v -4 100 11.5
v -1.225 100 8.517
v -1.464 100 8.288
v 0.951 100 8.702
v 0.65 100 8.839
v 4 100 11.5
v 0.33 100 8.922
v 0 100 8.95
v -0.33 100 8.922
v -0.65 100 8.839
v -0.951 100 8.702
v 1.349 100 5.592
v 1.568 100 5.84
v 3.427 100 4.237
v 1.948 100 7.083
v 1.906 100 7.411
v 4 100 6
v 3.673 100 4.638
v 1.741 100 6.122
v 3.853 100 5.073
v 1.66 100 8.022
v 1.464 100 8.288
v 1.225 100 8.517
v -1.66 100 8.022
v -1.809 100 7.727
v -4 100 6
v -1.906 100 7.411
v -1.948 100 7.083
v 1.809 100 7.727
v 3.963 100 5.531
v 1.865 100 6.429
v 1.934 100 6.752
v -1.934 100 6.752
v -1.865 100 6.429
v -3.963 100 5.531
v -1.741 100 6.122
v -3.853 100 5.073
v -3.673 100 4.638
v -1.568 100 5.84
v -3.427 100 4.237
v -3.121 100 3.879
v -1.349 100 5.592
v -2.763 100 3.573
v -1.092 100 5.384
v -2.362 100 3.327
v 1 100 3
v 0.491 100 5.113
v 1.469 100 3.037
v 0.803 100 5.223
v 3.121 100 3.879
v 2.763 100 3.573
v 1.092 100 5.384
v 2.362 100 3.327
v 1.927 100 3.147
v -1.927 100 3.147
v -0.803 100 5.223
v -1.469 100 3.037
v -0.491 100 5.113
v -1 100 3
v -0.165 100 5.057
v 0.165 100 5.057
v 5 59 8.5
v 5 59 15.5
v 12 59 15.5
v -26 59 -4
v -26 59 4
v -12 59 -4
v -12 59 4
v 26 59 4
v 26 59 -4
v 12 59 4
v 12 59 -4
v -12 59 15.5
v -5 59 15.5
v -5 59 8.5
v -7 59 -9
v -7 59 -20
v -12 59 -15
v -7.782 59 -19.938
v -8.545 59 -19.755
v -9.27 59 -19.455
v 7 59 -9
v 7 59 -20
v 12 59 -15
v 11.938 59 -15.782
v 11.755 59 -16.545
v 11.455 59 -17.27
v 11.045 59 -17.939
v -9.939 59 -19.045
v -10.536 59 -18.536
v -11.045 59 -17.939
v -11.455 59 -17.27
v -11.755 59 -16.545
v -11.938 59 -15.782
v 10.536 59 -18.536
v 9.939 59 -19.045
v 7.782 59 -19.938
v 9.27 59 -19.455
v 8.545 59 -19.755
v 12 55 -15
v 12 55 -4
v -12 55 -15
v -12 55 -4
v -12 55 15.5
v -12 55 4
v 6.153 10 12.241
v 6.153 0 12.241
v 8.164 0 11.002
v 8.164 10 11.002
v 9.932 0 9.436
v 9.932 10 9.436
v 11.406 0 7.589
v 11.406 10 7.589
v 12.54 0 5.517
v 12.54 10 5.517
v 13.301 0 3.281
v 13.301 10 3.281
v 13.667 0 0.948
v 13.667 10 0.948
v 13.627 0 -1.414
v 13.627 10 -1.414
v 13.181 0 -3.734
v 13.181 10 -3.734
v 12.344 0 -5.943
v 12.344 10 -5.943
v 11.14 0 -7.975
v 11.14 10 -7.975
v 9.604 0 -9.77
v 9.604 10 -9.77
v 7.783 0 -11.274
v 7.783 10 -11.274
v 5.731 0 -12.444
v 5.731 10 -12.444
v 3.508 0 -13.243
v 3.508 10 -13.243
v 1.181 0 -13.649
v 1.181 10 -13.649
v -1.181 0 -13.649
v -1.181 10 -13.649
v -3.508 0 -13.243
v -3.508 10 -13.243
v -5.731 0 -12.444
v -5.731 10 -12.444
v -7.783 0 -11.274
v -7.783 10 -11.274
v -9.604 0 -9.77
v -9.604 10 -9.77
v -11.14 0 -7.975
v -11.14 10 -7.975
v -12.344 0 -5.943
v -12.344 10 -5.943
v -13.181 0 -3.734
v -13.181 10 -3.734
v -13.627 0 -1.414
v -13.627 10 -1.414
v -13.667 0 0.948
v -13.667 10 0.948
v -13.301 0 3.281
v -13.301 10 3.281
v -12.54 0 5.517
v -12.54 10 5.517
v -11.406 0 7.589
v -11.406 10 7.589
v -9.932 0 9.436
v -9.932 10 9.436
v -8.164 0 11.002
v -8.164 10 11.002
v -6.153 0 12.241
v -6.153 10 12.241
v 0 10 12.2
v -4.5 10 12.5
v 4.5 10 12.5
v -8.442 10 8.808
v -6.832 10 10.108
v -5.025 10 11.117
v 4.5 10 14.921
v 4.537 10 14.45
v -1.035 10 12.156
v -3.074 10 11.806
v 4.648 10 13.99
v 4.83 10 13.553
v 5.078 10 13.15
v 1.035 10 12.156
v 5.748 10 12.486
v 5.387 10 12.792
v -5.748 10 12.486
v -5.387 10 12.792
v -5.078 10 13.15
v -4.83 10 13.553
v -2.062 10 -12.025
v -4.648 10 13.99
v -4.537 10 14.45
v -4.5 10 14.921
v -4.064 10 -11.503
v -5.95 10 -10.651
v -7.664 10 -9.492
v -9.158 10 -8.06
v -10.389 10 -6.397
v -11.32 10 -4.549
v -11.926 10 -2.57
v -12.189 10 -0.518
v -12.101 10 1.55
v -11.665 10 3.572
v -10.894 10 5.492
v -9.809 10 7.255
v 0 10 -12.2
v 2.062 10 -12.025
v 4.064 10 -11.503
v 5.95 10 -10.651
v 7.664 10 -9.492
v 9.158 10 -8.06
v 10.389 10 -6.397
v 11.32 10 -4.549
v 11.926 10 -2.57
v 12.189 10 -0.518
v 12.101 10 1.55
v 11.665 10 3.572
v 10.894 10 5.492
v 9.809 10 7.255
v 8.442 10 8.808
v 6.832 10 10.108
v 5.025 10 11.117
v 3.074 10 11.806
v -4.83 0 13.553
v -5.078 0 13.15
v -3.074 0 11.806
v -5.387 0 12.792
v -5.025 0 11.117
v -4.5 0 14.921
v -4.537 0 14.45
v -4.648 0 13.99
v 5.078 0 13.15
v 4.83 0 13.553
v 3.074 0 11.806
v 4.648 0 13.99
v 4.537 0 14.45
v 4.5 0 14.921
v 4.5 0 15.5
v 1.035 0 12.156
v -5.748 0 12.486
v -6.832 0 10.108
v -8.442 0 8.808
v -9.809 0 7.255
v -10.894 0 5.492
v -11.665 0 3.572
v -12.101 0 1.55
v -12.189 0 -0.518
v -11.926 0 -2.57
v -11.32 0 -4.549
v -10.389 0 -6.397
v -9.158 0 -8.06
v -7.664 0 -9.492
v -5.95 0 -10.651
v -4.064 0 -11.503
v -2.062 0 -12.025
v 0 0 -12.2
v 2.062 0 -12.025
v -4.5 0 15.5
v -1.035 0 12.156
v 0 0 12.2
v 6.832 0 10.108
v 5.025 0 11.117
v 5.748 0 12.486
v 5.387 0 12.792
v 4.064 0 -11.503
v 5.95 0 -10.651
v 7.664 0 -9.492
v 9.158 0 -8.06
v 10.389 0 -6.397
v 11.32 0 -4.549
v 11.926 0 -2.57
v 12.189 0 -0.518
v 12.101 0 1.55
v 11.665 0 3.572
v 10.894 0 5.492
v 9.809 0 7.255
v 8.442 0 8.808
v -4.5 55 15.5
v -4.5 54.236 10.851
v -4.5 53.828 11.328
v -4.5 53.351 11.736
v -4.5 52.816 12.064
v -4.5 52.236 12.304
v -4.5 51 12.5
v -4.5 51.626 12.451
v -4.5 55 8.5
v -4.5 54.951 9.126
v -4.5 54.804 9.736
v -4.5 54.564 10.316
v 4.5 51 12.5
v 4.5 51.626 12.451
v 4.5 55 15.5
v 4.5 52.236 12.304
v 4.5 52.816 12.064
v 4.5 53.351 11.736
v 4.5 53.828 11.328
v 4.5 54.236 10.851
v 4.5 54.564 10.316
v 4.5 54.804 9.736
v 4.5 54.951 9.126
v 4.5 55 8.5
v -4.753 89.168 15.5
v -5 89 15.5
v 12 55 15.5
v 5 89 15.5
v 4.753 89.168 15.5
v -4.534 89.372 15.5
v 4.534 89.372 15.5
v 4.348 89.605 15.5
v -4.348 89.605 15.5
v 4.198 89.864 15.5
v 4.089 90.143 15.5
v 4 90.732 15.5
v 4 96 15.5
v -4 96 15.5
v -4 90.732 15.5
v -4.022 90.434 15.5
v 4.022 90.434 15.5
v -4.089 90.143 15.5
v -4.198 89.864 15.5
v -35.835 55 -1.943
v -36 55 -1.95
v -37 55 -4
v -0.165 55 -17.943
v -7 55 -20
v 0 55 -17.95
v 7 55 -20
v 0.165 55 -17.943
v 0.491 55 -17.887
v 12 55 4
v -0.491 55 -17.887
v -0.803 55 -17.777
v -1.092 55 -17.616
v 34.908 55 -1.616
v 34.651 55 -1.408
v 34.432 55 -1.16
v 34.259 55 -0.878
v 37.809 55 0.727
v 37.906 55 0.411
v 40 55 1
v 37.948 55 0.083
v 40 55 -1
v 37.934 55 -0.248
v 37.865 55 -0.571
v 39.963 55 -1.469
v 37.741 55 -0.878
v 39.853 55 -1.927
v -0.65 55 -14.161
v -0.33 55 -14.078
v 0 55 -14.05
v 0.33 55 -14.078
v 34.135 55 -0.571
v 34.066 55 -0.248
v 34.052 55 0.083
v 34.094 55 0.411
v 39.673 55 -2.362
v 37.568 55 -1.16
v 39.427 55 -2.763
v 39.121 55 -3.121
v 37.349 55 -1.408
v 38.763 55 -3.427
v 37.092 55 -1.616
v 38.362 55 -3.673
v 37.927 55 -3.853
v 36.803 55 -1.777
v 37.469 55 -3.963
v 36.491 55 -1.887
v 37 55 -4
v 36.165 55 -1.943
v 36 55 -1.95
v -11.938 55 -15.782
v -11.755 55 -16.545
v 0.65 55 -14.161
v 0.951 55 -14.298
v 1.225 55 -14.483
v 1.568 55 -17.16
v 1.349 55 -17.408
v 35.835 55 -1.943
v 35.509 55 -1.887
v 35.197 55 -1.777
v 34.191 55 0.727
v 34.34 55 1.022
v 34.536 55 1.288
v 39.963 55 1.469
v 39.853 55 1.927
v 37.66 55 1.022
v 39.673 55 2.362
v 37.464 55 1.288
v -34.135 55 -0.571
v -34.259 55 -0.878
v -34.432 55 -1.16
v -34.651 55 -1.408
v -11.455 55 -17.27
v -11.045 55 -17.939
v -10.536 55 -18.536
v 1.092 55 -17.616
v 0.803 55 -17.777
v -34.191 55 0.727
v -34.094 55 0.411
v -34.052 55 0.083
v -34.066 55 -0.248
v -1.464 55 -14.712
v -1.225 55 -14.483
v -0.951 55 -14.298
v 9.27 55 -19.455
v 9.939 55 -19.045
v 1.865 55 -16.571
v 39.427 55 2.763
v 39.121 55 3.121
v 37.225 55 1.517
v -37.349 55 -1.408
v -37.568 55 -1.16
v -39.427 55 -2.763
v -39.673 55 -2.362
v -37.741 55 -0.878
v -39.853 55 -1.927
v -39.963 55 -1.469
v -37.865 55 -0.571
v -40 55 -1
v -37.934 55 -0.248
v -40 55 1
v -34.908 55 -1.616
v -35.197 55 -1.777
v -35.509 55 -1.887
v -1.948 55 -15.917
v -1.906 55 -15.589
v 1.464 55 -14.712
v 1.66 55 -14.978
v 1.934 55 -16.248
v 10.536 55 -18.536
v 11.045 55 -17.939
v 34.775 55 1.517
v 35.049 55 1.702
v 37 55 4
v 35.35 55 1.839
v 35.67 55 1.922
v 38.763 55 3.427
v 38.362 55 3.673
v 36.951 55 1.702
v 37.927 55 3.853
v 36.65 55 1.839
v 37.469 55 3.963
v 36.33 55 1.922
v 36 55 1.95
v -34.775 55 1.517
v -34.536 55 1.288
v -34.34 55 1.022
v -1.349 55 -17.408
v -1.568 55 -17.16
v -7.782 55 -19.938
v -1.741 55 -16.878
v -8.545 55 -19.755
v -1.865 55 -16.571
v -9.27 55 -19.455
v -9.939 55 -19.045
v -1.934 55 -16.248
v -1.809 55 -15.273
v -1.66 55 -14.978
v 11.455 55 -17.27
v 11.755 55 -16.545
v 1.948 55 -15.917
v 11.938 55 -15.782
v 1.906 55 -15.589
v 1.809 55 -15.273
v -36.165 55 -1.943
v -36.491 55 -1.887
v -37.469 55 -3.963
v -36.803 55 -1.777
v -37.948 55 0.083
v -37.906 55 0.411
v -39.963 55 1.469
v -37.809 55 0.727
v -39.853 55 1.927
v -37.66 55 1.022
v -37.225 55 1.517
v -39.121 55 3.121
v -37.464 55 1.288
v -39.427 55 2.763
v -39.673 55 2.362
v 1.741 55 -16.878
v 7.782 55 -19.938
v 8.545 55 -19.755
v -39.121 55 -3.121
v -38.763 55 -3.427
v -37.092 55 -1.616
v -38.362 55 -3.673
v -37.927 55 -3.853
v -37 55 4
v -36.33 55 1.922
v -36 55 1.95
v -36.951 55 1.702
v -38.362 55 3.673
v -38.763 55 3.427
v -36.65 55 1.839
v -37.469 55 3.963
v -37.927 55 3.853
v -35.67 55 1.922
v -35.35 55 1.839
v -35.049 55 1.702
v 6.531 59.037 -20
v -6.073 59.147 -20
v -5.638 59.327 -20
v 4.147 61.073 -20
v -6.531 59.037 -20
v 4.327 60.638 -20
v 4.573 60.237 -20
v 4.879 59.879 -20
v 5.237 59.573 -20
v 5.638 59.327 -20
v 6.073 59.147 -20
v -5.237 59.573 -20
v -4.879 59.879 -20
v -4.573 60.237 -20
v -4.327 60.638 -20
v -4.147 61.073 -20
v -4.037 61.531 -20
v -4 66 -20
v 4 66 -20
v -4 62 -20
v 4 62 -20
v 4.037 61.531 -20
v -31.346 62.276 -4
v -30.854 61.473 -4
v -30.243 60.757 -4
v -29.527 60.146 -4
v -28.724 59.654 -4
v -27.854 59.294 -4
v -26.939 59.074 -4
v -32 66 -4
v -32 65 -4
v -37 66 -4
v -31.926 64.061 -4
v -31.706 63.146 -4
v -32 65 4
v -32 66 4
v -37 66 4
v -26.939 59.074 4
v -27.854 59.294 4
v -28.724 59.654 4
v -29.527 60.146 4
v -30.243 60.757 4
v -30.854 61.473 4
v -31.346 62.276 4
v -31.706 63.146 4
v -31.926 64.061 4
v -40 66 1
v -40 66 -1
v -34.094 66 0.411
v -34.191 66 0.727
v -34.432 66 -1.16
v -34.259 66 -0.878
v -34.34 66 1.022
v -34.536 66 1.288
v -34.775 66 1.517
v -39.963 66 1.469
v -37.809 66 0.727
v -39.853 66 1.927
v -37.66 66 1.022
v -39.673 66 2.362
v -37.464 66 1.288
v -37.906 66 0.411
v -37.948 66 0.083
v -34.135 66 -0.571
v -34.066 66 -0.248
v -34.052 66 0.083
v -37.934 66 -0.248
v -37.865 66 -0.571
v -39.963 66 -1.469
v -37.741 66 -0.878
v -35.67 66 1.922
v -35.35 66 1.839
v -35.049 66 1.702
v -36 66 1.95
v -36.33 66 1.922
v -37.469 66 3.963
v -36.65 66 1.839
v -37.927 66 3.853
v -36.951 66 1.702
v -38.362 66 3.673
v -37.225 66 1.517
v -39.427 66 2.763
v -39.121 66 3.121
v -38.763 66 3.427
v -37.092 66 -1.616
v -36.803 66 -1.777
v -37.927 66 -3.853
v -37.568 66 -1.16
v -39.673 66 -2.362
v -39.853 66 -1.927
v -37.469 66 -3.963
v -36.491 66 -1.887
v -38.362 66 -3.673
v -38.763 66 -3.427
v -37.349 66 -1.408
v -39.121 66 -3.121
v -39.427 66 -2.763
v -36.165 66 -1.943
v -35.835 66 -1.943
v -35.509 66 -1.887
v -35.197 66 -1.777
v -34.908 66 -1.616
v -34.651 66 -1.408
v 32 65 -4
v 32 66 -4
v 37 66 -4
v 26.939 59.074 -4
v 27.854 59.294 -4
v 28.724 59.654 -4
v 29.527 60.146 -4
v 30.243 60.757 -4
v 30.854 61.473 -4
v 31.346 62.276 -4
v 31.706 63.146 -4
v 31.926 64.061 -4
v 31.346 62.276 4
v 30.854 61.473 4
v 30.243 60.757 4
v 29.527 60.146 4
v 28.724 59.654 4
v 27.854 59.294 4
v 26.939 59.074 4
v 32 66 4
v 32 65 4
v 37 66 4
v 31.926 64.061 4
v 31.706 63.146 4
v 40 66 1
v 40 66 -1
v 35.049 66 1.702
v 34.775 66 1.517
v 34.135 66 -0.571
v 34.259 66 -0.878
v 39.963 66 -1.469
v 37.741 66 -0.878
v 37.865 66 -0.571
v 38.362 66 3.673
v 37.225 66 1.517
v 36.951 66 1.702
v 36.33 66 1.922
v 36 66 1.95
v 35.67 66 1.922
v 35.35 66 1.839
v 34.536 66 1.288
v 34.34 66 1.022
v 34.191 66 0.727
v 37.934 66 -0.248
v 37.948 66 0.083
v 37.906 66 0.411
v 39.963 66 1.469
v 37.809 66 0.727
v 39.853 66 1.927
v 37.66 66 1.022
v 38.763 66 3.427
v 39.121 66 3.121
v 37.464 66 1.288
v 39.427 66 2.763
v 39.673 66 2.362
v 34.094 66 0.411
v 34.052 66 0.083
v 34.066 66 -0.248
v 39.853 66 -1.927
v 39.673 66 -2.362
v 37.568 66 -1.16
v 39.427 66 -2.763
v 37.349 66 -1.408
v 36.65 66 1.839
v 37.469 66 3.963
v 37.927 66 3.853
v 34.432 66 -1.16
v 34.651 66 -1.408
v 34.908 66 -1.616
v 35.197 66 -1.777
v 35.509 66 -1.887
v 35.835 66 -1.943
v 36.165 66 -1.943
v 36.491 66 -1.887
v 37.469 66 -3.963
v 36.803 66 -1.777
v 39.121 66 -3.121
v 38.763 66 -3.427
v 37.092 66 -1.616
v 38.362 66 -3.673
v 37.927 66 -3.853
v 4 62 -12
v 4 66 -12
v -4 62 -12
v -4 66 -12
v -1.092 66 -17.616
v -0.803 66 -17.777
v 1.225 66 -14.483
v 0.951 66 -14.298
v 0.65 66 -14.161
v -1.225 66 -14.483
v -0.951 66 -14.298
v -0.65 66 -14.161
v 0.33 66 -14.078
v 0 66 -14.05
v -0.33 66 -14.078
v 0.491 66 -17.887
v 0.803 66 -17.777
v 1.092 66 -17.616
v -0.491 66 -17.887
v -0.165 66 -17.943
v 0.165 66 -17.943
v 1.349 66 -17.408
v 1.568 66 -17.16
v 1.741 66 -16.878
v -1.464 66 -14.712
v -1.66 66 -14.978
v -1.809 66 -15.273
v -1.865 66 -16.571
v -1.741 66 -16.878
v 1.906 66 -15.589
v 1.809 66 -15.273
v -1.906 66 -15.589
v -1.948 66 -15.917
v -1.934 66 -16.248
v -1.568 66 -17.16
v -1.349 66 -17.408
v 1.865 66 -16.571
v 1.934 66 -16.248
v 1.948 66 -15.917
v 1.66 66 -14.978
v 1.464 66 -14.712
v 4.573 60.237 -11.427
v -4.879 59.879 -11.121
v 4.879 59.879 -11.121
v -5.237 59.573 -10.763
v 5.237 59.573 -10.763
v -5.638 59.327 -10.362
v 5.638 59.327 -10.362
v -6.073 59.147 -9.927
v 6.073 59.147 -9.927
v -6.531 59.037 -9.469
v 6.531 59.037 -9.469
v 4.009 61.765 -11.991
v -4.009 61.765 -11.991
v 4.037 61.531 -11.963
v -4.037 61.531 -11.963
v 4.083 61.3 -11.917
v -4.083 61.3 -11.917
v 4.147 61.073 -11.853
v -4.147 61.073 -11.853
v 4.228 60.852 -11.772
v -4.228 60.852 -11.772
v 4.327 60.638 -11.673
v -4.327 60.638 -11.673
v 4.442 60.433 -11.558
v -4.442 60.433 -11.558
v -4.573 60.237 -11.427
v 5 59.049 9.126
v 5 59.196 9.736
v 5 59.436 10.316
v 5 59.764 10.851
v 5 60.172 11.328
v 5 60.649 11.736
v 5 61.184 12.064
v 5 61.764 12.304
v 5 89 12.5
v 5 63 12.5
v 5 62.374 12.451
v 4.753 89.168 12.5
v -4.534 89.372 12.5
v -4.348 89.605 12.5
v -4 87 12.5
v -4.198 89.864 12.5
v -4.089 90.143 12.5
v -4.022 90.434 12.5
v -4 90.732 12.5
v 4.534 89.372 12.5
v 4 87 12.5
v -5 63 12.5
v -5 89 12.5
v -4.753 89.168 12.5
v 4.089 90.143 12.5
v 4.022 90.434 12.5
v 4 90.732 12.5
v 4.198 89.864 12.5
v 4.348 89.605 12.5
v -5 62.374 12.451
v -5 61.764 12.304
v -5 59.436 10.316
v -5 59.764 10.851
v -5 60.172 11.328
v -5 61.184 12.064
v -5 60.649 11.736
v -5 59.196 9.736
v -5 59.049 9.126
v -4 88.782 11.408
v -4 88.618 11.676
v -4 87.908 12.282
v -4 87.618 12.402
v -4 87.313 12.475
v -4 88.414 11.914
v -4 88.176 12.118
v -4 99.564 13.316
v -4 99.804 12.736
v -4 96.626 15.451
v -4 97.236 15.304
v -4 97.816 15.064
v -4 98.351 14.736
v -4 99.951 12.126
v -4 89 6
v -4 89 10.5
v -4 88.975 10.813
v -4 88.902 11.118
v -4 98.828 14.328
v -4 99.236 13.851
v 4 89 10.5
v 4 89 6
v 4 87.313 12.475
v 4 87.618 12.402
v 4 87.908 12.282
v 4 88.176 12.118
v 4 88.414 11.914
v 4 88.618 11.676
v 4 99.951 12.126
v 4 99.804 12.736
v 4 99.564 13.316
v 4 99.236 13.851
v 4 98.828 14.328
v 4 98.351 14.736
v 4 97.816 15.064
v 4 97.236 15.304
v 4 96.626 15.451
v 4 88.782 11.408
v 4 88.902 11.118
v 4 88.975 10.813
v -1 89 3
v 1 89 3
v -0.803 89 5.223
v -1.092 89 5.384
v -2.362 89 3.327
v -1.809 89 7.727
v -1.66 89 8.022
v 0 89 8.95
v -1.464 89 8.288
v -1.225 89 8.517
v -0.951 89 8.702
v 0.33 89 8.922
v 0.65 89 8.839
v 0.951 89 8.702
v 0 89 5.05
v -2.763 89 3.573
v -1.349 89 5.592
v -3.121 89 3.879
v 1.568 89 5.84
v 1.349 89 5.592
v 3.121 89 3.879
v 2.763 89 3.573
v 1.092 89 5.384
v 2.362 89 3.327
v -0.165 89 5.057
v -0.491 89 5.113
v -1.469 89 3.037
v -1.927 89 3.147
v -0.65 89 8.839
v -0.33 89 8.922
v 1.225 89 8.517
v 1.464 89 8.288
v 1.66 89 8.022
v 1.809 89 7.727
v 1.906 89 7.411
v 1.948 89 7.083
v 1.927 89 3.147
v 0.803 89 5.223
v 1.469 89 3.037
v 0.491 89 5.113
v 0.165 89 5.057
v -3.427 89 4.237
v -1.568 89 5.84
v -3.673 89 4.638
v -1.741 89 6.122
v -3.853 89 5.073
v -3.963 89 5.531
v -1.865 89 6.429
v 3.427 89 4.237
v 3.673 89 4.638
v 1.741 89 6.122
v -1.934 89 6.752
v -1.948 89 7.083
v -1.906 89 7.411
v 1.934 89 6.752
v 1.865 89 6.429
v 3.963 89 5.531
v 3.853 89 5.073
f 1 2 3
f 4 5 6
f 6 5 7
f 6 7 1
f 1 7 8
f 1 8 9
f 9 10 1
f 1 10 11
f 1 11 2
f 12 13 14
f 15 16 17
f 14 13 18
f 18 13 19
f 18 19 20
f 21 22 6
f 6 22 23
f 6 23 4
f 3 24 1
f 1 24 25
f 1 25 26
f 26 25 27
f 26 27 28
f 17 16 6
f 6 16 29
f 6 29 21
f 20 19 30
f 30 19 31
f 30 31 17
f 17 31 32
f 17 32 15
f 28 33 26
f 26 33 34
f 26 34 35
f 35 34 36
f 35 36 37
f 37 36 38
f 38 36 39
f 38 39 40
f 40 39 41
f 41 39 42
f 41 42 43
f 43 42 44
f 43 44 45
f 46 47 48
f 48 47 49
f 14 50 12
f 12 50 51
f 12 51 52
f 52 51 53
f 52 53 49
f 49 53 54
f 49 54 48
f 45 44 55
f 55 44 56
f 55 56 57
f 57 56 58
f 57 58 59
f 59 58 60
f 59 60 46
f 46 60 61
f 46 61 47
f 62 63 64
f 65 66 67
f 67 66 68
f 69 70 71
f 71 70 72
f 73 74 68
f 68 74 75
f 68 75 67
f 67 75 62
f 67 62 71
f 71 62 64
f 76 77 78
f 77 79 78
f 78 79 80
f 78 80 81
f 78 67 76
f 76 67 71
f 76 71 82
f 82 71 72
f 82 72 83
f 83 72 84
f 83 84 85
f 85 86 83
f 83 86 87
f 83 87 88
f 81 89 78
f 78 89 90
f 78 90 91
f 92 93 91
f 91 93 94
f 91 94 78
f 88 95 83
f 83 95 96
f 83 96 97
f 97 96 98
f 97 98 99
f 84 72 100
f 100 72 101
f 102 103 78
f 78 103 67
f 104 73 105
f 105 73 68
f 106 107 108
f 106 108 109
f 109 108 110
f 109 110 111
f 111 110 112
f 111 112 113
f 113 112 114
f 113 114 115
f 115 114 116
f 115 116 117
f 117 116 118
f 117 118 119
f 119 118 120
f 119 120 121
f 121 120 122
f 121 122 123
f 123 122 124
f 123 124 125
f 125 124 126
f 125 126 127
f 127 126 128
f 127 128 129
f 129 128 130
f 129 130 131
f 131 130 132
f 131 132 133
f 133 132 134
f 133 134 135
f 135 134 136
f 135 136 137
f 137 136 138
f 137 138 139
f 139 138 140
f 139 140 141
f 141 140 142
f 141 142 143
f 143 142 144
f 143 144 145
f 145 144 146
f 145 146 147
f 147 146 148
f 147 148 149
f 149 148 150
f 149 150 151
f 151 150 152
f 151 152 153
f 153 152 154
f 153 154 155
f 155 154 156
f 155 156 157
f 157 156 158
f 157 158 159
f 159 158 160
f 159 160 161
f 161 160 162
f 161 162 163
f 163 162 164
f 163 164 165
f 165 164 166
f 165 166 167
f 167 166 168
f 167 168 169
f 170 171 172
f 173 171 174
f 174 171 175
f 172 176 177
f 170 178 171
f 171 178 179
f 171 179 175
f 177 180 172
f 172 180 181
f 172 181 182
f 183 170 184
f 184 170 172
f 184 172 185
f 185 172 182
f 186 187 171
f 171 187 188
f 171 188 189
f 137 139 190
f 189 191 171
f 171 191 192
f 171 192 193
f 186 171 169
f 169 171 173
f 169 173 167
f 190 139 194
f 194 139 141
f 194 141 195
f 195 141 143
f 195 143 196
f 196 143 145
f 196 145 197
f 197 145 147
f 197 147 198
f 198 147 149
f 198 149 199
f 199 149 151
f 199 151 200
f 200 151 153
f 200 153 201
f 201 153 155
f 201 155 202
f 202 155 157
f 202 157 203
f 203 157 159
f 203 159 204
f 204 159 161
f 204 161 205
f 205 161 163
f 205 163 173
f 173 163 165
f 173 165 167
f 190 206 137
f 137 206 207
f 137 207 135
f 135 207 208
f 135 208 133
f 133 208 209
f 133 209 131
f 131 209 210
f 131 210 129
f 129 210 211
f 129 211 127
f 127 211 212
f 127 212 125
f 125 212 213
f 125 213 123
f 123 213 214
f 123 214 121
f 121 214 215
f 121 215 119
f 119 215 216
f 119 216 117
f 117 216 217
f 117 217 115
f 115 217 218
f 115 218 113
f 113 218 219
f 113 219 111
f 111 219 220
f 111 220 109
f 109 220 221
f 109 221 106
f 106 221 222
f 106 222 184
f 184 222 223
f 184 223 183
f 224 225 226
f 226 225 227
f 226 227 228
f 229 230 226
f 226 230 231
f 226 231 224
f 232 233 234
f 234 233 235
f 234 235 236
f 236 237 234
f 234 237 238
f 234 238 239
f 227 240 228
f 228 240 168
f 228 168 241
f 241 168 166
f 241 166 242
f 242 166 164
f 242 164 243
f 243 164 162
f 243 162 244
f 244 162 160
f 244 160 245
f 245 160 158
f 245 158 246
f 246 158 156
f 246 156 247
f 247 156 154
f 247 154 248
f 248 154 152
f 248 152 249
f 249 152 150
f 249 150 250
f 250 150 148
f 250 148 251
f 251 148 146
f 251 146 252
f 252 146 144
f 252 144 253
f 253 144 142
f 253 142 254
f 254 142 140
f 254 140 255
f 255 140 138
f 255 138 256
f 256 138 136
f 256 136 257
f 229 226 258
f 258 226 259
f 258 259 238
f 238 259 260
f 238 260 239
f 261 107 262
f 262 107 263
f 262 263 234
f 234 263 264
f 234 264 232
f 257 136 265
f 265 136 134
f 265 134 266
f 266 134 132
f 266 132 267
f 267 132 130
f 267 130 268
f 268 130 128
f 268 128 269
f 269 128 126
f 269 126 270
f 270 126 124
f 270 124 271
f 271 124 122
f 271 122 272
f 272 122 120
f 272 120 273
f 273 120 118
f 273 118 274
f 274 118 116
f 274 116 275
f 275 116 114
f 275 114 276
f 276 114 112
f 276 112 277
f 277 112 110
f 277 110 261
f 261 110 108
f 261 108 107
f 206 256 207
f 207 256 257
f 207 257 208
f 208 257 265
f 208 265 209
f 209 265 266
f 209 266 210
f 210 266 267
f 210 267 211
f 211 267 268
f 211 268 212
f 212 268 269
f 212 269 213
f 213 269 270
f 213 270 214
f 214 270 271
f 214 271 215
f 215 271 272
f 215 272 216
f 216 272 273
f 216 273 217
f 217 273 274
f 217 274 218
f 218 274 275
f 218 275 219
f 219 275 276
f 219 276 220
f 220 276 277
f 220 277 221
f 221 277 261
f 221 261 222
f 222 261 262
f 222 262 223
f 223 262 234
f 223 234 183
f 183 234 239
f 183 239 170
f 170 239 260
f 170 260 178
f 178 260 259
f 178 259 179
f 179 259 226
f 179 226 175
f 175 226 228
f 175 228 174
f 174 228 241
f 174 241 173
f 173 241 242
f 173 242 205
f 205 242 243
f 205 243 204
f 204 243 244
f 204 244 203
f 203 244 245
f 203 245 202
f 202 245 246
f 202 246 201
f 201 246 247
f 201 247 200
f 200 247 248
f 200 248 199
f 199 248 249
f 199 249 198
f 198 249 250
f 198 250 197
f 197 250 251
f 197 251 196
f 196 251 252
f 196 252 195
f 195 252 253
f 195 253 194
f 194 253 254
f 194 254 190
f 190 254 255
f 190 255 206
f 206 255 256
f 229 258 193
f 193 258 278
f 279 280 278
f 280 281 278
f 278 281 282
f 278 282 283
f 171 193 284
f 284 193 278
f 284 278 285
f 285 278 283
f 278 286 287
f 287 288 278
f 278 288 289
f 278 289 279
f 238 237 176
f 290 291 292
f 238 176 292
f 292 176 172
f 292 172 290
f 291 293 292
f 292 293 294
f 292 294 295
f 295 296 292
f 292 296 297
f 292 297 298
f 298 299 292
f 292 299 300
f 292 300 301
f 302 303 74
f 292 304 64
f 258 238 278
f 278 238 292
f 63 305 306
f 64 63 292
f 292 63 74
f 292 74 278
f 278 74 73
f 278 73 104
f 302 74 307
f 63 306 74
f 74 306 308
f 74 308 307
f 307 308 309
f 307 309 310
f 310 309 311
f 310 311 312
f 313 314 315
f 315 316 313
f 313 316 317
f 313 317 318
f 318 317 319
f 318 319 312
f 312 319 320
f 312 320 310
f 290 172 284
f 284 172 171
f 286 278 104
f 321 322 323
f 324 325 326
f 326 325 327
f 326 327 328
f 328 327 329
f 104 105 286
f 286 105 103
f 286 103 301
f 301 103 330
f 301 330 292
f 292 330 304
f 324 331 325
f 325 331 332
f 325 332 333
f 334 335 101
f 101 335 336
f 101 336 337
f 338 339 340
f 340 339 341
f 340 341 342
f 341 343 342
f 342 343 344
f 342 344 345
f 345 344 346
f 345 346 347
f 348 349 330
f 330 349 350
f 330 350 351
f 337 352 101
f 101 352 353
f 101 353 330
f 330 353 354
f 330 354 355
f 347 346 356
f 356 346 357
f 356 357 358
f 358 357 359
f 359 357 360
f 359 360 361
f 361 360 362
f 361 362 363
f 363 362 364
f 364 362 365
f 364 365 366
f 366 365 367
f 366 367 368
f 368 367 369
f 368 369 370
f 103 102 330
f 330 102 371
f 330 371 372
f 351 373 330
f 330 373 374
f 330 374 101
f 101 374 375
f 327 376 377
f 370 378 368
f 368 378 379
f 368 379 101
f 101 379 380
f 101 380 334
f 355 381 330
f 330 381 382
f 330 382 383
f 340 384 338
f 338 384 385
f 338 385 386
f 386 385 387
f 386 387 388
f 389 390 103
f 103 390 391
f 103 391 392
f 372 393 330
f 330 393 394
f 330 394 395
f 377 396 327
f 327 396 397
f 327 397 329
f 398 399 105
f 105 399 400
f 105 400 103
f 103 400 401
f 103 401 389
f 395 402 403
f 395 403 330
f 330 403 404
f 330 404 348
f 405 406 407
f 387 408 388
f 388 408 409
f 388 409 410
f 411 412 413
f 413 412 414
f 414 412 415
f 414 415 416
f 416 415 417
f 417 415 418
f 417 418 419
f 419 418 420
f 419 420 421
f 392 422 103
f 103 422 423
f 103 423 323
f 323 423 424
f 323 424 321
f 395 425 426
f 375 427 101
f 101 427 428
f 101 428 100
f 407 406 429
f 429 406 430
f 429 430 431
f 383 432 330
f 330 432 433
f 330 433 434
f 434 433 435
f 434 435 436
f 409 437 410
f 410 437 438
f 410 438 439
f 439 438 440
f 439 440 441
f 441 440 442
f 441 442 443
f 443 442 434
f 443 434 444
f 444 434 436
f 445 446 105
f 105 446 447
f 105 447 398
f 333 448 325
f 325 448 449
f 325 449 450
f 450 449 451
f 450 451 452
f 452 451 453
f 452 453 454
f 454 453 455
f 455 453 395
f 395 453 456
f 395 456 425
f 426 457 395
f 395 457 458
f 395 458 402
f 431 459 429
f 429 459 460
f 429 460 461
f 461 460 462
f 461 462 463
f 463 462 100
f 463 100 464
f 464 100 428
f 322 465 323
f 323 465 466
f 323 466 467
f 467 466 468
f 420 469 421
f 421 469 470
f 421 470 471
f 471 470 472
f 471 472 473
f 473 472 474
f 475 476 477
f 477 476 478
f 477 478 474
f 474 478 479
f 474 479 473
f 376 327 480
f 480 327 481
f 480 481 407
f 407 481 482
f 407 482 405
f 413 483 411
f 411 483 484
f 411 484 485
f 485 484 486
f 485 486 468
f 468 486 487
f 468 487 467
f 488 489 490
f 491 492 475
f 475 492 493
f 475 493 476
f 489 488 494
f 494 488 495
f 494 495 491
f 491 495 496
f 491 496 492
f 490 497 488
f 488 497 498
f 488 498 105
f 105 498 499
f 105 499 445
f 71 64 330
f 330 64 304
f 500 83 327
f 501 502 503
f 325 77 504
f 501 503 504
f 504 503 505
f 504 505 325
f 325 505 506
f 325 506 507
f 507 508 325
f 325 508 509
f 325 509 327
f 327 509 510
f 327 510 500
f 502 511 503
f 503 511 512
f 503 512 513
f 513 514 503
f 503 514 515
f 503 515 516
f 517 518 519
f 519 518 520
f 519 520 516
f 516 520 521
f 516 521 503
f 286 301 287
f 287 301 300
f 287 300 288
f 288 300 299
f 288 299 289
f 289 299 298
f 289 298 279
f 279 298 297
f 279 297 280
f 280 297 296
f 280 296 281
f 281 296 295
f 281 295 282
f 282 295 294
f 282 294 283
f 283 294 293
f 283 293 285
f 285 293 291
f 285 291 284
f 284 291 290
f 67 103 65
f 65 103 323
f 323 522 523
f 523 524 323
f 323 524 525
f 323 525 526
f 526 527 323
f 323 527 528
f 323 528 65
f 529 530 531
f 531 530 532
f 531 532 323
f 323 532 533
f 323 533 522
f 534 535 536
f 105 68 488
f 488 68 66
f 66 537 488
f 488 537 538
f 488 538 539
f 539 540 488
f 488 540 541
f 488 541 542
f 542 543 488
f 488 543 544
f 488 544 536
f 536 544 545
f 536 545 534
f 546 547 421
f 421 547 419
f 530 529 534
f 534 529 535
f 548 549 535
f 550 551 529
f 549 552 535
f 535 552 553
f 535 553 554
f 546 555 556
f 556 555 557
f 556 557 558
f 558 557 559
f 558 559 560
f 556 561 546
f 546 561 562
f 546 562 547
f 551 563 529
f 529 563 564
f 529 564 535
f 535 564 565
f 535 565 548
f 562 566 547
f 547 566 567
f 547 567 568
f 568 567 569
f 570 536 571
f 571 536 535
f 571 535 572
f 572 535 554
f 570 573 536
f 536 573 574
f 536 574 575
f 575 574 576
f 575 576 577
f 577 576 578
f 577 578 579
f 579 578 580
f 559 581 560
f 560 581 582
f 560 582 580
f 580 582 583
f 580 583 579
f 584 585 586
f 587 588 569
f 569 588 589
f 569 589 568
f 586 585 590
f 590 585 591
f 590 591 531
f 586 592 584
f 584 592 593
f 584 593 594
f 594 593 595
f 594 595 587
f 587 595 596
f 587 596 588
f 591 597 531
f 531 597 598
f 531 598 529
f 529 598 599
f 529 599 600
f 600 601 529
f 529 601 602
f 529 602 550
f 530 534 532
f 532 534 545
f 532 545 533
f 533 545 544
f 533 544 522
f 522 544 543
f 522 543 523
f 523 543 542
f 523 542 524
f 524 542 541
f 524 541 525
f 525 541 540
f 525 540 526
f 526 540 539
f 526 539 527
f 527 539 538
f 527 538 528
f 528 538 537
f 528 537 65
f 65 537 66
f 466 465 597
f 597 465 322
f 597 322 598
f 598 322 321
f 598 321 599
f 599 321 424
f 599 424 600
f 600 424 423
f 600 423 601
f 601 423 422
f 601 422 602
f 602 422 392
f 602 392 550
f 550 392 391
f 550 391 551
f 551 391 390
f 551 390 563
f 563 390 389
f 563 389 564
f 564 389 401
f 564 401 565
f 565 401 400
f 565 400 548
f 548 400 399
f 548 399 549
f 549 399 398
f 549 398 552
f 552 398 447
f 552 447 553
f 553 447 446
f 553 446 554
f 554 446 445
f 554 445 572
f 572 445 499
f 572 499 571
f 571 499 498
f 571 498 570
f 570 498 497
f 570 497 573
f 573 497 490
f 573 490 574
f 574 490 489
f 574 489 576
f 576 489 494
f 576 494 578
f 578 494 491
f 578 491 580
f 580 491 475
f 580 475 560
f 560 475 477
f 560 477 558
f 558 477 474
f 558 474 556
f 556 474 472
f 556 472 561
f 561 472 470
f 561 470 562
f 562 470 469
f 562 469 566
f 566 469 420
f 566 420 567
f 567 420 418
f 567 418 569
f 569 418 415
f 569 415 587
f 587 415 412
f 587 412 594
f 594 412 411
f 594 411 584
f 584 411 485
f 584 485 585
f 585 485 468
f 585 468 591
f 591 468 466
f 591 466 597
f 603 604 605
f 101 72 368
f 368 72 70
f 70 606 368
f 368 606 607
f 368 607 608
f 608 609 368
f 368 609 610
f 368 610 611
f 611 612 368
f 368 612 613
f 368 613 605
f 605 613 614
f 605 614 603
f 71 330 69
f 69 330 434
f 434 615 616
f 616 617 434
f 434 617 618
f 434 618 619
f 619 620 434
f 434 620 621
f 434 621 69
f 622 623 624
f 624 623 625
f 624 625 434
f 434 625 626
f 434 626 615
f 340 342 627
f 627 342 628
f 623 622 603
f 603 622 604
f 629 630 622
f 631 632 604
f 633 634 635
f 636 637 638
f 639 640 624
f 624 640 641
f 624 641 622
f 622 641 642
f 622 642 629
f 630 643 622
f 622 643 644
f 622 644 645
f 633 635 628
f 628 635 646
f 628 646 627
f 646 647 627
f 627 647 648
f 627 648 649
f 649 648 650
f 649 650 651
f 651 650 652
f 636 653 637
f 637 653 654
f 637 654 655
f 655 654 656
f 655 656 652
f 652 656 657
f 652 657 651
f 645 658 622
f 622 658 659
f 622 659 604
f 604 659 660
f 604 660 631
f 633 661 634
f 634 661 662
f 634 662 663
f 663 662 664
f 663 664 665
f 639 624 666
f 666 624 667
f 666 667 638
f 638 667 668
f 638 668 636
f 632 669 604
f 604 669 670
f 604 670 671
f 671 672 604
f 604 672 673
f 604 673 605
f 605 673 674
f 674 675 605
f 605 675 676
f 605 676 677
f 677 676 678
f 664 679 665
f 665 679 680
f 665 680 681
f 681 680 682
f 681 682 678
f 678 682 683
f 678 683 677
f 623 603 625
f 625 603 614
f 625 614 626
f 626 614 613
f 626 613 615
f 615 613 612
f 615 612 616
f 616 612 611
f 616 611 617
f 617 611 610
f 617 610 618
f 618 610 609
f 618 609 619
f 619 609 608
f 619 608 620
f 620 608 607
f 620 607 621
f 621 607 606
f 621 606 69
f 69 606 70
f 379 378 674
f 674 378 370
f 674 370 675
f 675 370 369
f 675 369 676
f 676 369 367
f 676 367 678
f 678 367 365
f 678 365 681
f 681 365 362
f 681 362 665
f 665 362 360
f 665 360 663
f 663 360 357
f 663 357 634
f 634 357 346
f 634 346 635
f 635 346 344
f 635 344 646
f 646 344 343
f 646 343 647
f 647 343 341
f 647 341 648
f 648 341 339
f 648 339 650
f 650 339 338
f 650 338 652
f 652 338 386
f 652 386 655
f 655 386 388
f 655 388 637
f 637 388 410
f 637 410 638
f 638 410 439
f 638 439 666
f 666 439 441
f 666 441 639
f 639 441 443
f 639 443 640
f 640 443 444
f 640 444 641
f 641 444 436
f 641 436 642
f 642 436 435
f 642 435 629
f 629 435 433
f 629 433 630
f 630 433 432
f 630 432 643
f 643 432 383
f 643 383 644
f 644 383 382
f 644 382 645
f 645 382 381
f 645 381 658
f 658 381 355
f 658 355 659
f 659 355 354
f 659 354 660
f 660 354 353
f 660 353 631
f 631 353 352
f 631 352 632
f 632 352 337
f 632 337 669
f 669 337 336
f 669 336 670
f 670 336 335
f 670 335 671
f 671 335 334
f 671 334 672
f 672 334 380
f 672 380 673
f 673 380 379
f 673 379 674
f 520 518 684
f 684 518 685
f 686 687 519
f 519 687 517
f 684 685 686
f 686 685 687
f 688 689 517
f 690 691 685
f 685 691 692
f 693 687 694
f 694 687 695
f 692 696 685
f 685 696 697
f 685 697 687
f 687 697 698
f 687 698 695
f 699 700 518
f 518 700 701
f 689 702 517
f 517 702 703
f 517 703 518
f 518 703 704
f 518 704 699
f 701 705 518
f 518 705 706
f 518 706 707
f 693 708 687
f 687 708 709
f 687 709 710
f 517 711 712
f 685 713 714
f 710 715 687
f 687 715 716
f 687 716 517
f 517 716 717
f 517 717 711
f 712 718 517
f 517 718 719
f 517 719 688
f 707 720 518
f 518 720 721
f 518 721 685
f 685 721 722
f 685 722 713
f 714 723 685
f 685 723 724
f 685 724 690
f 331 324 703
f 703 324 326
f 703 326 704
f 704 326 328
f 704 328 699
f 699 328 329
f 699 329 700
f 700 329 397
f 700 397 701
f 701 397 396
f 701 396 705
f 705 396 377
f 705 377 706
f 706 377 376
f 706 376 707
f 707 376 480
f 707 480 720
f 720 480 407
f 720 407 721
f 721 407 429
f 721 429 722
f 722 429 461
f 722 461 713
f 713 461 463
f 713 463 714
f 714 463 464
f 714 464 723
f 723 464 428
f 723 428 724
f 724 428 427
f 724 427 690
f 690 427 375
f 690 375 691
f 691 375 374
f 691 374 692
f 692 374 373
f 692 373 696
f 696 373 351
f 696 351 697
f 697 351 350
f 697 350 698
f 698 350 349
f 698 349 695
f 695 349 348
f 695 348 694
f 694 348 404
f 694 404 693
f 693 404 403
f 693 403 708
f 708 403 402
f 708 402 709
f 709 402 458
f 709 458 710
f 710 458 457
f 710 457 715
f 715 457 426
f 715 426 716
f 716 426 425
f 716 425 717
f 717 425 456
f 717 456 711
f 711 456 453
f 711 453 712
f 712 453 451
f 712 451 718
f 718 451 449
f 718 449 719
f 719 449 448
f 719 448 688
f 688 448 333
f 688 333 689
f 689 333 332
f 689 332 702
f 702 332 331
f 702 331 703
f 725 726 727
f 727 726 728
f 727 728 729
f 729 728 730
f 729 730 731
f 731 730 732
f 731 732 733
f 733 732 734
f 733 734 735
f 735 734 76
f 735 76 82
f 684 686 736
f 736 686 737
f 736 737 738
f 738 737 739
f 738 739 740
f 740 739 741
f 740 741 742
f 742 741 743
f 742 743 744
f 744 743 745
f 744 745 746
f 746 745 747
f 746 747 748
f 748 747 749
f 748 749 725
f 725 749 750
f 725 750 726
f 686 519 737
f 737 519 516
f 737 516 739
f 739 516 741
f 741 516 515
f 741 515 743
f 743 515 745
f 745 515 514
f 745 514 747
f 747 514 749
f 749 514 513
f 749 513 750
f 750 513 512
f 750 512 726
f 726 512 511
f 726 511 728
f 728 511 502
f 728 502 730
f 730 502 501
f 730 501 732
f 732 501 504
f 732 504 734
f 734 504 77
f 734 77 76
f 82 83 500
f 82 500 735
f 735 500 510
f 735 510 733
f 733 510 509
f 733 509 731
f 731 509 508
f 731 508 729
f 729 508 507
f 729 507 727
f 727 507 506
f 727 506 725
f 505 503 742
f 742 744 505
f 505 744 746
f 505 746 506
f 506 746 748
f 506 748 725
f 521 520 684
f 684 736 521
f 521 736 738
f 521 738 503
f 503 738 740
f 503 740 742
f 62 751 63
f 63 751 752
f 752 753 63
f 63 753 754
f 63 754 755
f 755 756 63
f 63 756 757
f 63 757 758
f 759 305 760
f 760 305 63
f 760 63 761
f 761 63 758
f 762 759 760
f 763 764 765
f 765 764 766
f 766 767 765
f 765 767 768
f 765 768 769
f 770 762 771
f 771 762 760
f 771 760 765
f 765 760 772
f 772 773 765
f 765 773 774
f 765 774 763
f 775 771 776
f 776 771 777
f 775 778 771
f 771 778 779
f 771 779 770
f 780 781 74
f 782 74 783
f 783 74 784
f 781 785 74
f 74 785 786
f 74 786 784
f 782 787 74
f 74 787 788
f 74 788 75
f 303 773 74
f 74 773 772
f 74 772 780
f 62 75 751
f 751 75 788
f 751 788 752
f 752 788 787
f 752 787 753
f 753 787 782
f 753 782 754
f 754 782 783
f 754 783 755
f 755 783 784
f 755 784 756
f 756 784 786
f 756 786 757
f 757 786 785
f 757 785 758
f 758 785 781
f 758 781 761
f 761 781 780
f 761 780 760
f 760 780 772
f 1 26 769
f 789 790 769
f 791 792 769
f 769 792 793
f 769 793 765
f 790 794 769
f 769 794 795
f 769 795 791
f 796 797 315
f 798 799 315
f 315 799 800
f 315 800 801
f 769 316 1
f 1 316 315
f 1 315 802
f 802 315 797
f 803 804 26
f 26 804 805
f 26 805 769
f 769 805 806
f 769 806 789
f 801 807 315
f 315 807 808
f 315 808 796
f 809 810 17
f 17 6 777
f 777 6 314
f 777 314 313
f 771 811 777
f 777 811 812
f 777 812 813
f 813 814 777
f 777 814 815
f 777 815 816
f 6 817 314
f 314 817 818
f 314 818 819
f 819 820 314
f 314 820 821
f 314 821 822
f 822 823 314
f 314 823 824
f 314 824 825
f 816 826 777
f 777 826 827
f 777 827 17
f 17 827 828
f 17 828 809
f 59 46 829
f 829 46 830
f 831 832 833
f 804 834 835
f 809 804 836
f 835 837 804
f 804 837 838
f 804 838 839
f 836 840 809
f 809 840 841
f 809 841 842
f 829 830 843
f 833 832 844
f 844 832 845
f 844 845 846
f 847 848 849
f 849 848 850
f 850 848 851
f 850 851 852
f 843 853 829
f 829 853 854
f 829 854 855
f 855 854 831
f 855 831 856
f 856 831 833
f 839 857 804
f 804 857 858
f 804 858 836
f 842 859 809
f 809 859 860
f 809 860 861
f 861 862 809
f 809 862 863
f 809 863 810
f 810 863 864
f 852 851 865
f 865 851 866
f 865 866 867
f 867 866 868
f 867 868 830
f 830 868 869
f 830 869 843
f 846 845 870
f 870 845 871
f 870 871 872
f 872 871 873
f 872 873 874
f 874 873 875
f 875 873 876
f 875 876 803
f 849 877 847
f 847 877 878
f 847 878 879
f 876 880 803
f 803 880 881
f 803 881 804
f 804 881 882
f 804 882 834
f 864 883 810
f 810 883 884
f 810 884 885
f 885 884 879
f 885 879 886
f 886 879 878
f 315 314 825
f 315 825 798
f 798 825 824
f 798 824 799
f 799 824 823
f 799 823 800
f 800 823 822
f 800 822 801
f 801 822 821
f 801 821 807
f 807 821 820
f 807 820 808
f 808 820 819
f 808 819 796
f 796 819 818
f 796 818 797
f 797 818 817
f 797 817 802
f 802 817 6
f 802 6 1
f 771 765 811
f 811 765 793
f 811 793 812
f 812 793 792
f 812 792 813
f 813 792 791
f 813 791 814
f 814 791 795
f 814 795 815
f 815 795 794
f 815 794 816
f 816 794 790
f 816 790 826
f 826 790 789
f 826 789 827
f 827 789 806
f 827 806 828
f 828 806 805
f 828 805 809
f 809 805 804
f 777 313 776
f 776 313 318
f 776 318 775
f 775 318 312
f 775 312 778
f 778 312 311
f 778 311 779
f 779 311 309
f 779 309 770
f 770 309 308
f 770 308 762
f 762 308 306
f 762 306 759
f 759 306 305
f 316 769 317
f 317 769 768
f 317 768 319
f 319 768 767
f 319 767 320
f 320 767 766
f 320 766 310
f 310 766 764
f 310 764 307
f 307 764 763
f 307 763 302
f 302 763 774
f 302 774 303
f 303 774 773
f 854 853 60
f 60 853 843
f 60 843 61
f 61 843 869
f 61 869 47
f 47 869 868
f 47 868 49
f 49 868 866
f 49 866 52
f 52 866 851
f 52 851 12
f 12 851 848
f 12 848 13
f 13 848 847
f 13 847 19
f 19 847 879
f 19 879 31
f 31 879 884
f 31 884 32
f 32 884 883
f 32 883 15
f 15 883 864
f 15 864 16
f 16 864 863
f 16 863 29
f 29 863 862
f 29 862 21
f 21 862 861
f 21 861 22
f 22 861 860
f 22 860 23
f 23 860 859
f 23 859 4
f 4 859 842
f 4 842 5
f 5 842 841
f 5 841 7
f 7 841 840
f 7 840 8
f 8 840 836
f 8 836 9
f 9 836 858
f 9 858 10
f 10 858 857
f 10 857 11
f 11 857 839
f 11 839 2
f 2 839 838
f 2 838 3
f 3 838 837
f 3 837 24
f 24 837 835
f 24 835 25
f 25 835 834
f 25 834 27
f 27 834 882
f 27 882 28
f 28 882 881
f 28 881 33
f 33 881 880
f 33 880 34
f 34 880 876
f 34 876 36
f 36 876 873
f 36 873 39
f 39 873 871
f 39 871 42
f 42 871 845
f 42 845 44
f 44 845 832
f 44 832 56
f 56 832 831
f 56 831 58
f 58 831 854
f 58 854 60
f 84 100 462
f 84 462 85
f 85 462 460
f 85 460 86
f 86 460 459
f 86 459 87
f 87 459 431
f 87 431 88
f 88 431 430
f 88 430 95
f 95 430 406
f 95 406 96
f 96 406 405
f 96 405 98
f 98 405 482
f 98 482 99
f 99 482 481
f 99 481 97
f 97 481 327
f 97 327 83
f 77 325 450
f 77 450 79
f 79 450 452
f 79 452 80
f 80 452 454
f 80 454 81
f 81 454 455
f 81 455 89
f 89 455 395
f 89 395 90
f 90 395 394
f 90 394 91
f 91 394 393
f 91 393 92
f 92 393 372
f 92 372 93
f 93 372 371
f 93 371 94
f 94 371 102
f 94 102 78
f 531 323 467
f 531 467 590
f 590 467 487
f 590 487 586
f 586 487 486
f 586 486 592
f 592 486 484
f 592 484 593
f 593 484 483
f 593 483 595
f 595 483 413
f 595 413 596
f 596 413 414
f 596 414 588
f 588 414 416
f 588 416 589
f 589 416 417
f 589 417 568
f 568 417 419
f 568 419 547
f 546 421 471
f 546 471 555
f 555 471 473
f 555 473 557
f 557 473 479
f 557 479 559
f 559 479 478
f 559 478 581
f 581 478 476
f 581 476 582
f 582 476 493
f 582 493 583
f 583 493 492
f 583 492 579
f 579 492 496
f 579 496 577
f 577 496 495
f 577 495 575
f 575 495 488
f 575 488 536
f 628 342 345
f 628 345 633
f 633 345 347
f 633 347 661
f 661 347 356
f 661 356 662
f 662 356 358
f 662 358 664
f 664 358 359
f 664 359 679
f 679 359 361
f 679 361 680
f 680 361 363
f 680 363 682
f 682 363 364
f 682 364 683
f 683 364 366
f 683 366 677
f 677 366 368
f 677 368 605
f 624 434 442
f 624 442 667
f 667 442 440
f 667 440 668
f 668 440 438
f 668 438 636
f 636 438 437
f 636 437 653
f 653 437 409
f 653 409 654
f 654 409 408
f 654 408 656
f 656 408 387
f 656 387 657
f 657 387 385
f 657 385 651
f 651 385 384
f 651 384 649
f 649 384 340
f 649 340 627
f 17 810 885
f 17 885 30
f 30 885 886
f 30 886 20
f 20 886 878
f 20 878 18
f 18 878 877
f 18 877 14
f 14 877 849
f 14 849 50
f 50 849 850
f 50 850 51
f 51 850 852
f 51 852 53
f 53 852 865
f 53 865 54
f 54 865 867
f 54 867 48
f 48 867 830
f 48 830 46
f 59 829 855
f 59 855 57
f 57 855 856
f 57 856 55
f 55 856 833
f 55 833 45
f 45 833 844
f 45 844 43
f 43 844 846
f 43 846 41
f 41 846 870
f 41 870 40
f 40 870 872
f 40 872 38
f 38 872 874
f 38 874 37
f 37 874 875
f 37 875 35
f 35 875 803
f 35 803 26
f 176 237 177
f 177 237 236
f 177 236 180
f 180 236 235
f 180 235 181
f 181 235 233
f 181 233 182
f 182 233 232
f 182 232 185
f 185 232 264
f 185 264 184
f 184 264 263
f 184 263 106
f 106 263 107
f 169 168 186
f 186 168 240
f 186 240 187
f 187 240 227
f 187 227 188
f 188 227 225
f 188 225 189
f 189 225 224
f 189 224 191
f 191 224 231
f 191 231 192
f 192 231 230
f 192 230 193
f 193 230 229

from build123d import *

# Parameters (mm, degrees)
SKETCH_1_R             = 13.7
SKETCH_1_R_2           = 12.2
EXTRUDE_1_DEPTH        = 10
SKETCH_3_W             = 9
SKETCH_3_H             = 55
EXTRUDE_2_DEPTH        = 3
SKETCH_4_W             = 24
SKETCH_4_H             = 35.5
EXTRUDE_3_DEPTH        = 4
FILLET_1_R             = 4
SKETCH_5_W             = 40
SKETCH_5_H             = 8
EXTRUDE_4_DEPTH        = 4
SKETCH_6_W             = 8
SKETCH_6_H             = 8
EXTRUDE_5_DEPTH        = 11
FILLET_2_R             = 6
HOLE_WIZARD_0_1_D      = 3.900000074
FILLET_2_OF_MIRROR_1_R = 6
SKETCH_11_W            = 8
SKETCH_11_H            = 8
EXTRUDE_6_DEPTH        = 11
HOLE_WIZARD_0_2_D      = 3.8999922
FILLET_3_R             = 3
FILLET_4_R             = 3
FILLET_5_R             = 3
SKETCH_14_W            = 10
SKETCH_14_H            = 3
EXTRUDE_7_DEPTH        = 30
FILLET_6_R             = 4
SKETCH_16_W            = 8
SKETCH_16_H            = 12.5
EXTRUDE_8_DEPTH        = 11
FILLET_7_R             = 4
FILLET_8_R             = 2
FILLET_9_R             = 2
FILLET_10_R            = 2
HOLE_WIZARD_0_3_D      = 3.900000074
HOLE_WIZARD_0_3_DEPTH  = 11
FILLET_11_R            = 5
FILLET_12_R            = 5
FILLET_13_R            = 3
FILLET_14_R            = 3
FILLET_15_R            = 3
FILLET_16_R            = 3
FILLET_17_R            = 3
FILLET_18_R            = 3
FILLET_19_R            = 3
FILLET_20_R            = 3


with BuildPart() as part:
    # ｽｹｯﾁ1 → ﾎﾞｽ - 押し出し1 (new body)
    with BuildSketch(Plane(origin=(0, 0, 0), x_dir=(1, 0, 0), z_dir=(0, 1, 0))):
        with Locations(Location((0, 0, 0), (0, 0, 270))):
            Circle(SKETCH_1_R)
        with Locations(Location((0, 0, 0), (0, 0, 270))):
            Circle(SKETCH_1_R_2, mode=Mode.SUBTRACT)
    extrude(amount=EXTRUDE_1_DEPTH)

    # ｽｹｯﾁ3 → ﾎﾞｽ - 押し出し2 (add)
    with BuildSketch(Plane.XY.offset(12.5)):
        with Locations((0, 27.5)):
            Rectangle(SKETCH_3_W, SKETCH_3_H)
    extrude(amount=EXTRUDE_2_DEPTH)

    # ｽｹｯﾁ4 → ﾎﾞｽ - 押し出し3 (add)
    with BuildSketch(Plane(origin=(0, 55, 0), x_dir=(1, 0, 0), z_dir=(0, 1, 0))):
        with Locations((0, 2.25)):
            Rectangle(SKETCH_4_W, SKETCH_4_H)
    extrude(amount=EXTRUDE_3_DEPTH)

    # ﾌｨﾚｯﾄ1
    fillet_1_edges = [part.edges().sort_by_distance(p)[0] for p in [
        (0, 55, 12.5),
    ]]
    fillet(fillet_1_edges, radius=FILLET_1_R)

    # ｽｹｯﾁ5 → ﾎﾞｽ - 押し出し4 (add)
    with BuildSketch(Plane(origin=(0, 55, 0), x_dir=(1, 0, 0), z_dir=(0, 1, 0))):
        with Locations((-20, 0)):
            Rectangle(SKETCH_5_W, SKETCH_5_H)
    extrude_4 = extrude(amount=EXTRUDE_4_DEPTH)

    # ｽｹｯﾁ6 → ﾎﾞｽ - 押し出し5 (add)
    with BuildSketch(Plane(origin=(0, 55, 0), x_dir=(1, 0, 0), z_dir=(0, 1, 0))):
        with Locations((-36, 0)):
            Rectangle(SKETCH_6_W, SKETCH_6_H)
    extrude_5 = extrude(amount=EXTRUDE_5_DEPTH)

    # ﾌｨﾚｯﾄ2
    fillet_2_edges = [part.edges().sort_by_distance(p)[0] for p in [
        (-32, 59, 0),
    ]]
    fillet(fillet_2_edges, radius=FILLET_2_R)

    # #0 すきま穴1 (through all)
    with Locations(Plane(origin=(0, 66, 0), x_dir=(1, 0, 0), z_dir=(0, 1, 0))):
        with Locations((-36, 0)):
            hole_wizard_0_1 = Hole(HOLE_WIZARD_0_1_D / 2)

    # ﾐﾗｰ1: ﾎﾞｽ - 押し出し4, ﾎﾞｽ - 押し出し5, #0 すきま穴1 across plane
    add(extrude_4.mirror(Plane(origin=(0, 0, 0), x_dir=(0, 0, 1), z_dir=(1, 0, 0))))
    add(extrude_5.mirror(Plane(origin=(0, 0, 0), x_dir=(0, 0, 1), z_dir=(1, 0, 0))))
    add(hole_wizard_0_1.mirror(Plane(origin=(0, 0, 0), x_dir=(0, 0, 1), z_dir=(1, 0, 0))), mode=Mode.SUBTRACT)

    # ﾌｨﾚｯﾄ2 of ﾐﾗｰ1
    fillet_2_of_mirror_1_edges = [part.edges().sort_by_distance(p)[0] for p in [
        (32, 59, 0),
    ]]
    fillet(fillet_2_of_mirror_1_edges, radius=FILLET_2_OF_MIRROR_1_R)

    # ｽｹｯﾁ11 → ﾎﾞｽ - 押し出し6 (add)
    with BuildSketch(Plane(origin=(0, 55, 0), x_dir=(1, 0, 0), z_dir=(0, 1, 0))):
        with Locations((0, 16)):
            Rectangle(SKETCH_11_W, SKETCH_11_H)
    extrude(amount=EXTRUDE_6_DEPTH)

    # #0 すきま穴2 (through all)
    with Locations(Plane(origin=(0, 66, 0), x_dir=(1, 0, 0), z_dir=(0, 1, 0))):
        with Locations((0, 16)):
            Hole(HOLE_WIZARD_0_2_D / 2)

    # ﾌｨﾚｯﾄ3
    fillet_3_edges = [part.edges().sort_by_distance(p)[0] for p in [
        (0, 59, -12),
    ]]
    fillet(fillet_3_edges, radius=FILLET_3_R)

    # ﾌｨﾚｯﾄ4
    fillet_4_edges = [part.edges().sort_by_distance(p)[0] for p in [
        (-4, 59, -14.5),
    ]]
    fillet(fillet_4_edges, radius=FILLET_4_R)

    # ﾌｨﾚｯﾄ5
    fillet_5_edges = [part.edges().sort_by_distance(p)[0] for p in [
        (4, 59, -14.5),
    ]]
    fillet(fillet_5_edges, radius=FILLET_5_R)

    # ｽｹｯﾁ14 → ﾎﾞｽ - 押し出し7 (add)
    with BuildSketch(Plane(origin=(0, 59, 0), x_dir=(1, 0, 0), z_dir=(0, 1, 0))):
        with Locations((0, -14)):
            Rectangle(SKETCH_14_W, SKETCH_14_H)
    extrude(amount=EXTRUDE_7_DEPTH)

    # ﾌｨﾚｯﾄ6
    fillet_6_edges = [part.edges().sort_by_distance(p)[0] for p in [
        (0, 59, 12.5),
    ]]
    fillet(fillet_6_edges, radius=FILLET_6_R)

    # ｽｹｯﾁ16 → ﾎﾞｽ - 押し出し8 (add)
    with BuildSketch(Plane(origin=(0, 89, 0), x_dir=(1, 0, 0), z_dir=(0, 1, 0))):
        with Locations((0, -9.25)):
            Rectangle(SKETCH_16_W, SKETCH_16_H)
    extrude(amount=EXTRUDE_8_DEPTH)

    # ﾌｨﾚｯﾄ7
    fillet_7_edges = [part.edges().sort_by_distance(p)[0] for p in [
        (0, 100, 15.5),
    ]]
    fillet(fillet_7_edges, radius=FILLET_7_R)

    # ﾌｨﾚｯﾄ8
    fillet_8_edges = [part.edges().sort_by_distance(p)[0] for p in [
        (0, 89, 12.5),
    ]]
    fillet(fillet_8_edges, radius=FILLET_8_R)

    # ﾌｨﾚｯﾄ9
    # the kernel refuses this fillet: 2 mm, written as the material it adds along each edge
    with BuildSketch(Plane(origin=(4, 89, 15.5), x_dir=(0, 1, 0), z_dir=(0, 0, -1))) as fillet_9_piece_1:
        with BuildLine():
            CenterArc((1.732050808, 2), FILLET_9_R, 210, 60)
            Line((0, 1), (0, 0))
            Line((0, 0), (1.732050808, 0))
        make_face()
    extrude(amount=3)

    # ﾌｨﾚｯﾄ10
    # the kernel refuses this fillet: 2 mm, written as the material it adds along each edge
    with BuildSketch(Plane(origin=(-4, 89, 12.5), x_dir=(-1, 0, 0), z_dir=(0, 0, 1))) as fillet_10_piece_1:
        with BuildLine():
            CenterArc((2, -1.732050808), FILLET_10_R, 120, 60)
            Line((0, -1.732050808), (0, 0))
            Line((0, 0), (1, 0))
        make_face()
    extrude(amount=3)

    # #0 すきま穴3
    with Locations(Plane(origin=(0, 100, 0), x_dir=(1, 0, 0), z_dir=(0, 1, 0))):
        with Locations((0, -7)):
            Hole(HOLE_WIZARD_0_3_D / 2, depth=HOLE_WIZARD_0_3_DEPTH)

    # ﾌｨﾚｯﾄ11
    fillet_11_edges = [part.edges().sort_by_distance(p)[0] for p in [
        (12, 57, -20),
    ]]
    fillet(fillet_11_edges, radius=FILLET_11_R)

    # ﾌｨﾚｯﾄ12
    fillet_12_edges = [part.edges().sort_by_distance(p)[0] for p in [
        (-12, 57, -20),
    ]]
    fillet(fillet_12_edges, radius=FILLET_12_R)

    # ﾌｨﾚｯﾄ13
    fillet_13_edges = [part.edges().sort_by_distance(p)[0] for p in [
        (-40, 60.5, -4),
    ]]
    fillet(fillet_13_edges, radius=FILLET_13_R)

    # ﾌｨﾚｯﾄ14
    fillet_14_edges = [part.edges().sort_by_distance(p)[0] for p in [
        (-40, 60.5, 4),
    ]]
    fillet(fillet_14_edges, radius=FILLET_14_R)

    # ﾌｨﾚｯﾄ15
    fillet_15_edges = [part.edges().sort_by_distance(p)[0] for p in [
        (40, 60.5, -4),
    ]]
    fillet(fillet_15_edges, radius=FILLET_15_R)

    # ﾌｨﾚｯﾄ16
    fillet_16_edges = [part.edges().sort_by_distance(p)[0] for p in [
        (40, 60.5, 4),
    ]]
    fillet(fillet_16_edges, radius=FILLET_16_R)

    # ﾌｨﾚｯﾄ17
    fillet_17_edges = [part.edges().sort_by_distance(p)[0] for p in [
        (4, 94.5, 3),
    ]]
    fillet(fillet_17_edges, radius=FILLET_17_R)

    # ﾌｨﾚｯﾄ18
    fillet_18_edges = [part.edges().sort_by_distance(p)[0] for p in [
        (-4, 94.5, 3),
    ]]
    fillet(fillet_18_edges, radius=FILLET_18_R)

    # ﾌｨﾚｯﾄ19
    fillet_19_edges = [part.edges().sort_by_distance(p)[0] for p in [
        (4.5, 5, 12.939860896),
    ]]
    fillet(fillet_19_edges, radius=FILLET_19_R)

    # ﾌｨﾚｯﾄ20
    fillet_20_edges = [part.edges().sort_by_distance(p)[0] for p in [
        (-4.5, 5, 12.939860896),
    ]]
    fillet(fillet_20_edges, radius=FILLET_20_R)


solid = part.part
